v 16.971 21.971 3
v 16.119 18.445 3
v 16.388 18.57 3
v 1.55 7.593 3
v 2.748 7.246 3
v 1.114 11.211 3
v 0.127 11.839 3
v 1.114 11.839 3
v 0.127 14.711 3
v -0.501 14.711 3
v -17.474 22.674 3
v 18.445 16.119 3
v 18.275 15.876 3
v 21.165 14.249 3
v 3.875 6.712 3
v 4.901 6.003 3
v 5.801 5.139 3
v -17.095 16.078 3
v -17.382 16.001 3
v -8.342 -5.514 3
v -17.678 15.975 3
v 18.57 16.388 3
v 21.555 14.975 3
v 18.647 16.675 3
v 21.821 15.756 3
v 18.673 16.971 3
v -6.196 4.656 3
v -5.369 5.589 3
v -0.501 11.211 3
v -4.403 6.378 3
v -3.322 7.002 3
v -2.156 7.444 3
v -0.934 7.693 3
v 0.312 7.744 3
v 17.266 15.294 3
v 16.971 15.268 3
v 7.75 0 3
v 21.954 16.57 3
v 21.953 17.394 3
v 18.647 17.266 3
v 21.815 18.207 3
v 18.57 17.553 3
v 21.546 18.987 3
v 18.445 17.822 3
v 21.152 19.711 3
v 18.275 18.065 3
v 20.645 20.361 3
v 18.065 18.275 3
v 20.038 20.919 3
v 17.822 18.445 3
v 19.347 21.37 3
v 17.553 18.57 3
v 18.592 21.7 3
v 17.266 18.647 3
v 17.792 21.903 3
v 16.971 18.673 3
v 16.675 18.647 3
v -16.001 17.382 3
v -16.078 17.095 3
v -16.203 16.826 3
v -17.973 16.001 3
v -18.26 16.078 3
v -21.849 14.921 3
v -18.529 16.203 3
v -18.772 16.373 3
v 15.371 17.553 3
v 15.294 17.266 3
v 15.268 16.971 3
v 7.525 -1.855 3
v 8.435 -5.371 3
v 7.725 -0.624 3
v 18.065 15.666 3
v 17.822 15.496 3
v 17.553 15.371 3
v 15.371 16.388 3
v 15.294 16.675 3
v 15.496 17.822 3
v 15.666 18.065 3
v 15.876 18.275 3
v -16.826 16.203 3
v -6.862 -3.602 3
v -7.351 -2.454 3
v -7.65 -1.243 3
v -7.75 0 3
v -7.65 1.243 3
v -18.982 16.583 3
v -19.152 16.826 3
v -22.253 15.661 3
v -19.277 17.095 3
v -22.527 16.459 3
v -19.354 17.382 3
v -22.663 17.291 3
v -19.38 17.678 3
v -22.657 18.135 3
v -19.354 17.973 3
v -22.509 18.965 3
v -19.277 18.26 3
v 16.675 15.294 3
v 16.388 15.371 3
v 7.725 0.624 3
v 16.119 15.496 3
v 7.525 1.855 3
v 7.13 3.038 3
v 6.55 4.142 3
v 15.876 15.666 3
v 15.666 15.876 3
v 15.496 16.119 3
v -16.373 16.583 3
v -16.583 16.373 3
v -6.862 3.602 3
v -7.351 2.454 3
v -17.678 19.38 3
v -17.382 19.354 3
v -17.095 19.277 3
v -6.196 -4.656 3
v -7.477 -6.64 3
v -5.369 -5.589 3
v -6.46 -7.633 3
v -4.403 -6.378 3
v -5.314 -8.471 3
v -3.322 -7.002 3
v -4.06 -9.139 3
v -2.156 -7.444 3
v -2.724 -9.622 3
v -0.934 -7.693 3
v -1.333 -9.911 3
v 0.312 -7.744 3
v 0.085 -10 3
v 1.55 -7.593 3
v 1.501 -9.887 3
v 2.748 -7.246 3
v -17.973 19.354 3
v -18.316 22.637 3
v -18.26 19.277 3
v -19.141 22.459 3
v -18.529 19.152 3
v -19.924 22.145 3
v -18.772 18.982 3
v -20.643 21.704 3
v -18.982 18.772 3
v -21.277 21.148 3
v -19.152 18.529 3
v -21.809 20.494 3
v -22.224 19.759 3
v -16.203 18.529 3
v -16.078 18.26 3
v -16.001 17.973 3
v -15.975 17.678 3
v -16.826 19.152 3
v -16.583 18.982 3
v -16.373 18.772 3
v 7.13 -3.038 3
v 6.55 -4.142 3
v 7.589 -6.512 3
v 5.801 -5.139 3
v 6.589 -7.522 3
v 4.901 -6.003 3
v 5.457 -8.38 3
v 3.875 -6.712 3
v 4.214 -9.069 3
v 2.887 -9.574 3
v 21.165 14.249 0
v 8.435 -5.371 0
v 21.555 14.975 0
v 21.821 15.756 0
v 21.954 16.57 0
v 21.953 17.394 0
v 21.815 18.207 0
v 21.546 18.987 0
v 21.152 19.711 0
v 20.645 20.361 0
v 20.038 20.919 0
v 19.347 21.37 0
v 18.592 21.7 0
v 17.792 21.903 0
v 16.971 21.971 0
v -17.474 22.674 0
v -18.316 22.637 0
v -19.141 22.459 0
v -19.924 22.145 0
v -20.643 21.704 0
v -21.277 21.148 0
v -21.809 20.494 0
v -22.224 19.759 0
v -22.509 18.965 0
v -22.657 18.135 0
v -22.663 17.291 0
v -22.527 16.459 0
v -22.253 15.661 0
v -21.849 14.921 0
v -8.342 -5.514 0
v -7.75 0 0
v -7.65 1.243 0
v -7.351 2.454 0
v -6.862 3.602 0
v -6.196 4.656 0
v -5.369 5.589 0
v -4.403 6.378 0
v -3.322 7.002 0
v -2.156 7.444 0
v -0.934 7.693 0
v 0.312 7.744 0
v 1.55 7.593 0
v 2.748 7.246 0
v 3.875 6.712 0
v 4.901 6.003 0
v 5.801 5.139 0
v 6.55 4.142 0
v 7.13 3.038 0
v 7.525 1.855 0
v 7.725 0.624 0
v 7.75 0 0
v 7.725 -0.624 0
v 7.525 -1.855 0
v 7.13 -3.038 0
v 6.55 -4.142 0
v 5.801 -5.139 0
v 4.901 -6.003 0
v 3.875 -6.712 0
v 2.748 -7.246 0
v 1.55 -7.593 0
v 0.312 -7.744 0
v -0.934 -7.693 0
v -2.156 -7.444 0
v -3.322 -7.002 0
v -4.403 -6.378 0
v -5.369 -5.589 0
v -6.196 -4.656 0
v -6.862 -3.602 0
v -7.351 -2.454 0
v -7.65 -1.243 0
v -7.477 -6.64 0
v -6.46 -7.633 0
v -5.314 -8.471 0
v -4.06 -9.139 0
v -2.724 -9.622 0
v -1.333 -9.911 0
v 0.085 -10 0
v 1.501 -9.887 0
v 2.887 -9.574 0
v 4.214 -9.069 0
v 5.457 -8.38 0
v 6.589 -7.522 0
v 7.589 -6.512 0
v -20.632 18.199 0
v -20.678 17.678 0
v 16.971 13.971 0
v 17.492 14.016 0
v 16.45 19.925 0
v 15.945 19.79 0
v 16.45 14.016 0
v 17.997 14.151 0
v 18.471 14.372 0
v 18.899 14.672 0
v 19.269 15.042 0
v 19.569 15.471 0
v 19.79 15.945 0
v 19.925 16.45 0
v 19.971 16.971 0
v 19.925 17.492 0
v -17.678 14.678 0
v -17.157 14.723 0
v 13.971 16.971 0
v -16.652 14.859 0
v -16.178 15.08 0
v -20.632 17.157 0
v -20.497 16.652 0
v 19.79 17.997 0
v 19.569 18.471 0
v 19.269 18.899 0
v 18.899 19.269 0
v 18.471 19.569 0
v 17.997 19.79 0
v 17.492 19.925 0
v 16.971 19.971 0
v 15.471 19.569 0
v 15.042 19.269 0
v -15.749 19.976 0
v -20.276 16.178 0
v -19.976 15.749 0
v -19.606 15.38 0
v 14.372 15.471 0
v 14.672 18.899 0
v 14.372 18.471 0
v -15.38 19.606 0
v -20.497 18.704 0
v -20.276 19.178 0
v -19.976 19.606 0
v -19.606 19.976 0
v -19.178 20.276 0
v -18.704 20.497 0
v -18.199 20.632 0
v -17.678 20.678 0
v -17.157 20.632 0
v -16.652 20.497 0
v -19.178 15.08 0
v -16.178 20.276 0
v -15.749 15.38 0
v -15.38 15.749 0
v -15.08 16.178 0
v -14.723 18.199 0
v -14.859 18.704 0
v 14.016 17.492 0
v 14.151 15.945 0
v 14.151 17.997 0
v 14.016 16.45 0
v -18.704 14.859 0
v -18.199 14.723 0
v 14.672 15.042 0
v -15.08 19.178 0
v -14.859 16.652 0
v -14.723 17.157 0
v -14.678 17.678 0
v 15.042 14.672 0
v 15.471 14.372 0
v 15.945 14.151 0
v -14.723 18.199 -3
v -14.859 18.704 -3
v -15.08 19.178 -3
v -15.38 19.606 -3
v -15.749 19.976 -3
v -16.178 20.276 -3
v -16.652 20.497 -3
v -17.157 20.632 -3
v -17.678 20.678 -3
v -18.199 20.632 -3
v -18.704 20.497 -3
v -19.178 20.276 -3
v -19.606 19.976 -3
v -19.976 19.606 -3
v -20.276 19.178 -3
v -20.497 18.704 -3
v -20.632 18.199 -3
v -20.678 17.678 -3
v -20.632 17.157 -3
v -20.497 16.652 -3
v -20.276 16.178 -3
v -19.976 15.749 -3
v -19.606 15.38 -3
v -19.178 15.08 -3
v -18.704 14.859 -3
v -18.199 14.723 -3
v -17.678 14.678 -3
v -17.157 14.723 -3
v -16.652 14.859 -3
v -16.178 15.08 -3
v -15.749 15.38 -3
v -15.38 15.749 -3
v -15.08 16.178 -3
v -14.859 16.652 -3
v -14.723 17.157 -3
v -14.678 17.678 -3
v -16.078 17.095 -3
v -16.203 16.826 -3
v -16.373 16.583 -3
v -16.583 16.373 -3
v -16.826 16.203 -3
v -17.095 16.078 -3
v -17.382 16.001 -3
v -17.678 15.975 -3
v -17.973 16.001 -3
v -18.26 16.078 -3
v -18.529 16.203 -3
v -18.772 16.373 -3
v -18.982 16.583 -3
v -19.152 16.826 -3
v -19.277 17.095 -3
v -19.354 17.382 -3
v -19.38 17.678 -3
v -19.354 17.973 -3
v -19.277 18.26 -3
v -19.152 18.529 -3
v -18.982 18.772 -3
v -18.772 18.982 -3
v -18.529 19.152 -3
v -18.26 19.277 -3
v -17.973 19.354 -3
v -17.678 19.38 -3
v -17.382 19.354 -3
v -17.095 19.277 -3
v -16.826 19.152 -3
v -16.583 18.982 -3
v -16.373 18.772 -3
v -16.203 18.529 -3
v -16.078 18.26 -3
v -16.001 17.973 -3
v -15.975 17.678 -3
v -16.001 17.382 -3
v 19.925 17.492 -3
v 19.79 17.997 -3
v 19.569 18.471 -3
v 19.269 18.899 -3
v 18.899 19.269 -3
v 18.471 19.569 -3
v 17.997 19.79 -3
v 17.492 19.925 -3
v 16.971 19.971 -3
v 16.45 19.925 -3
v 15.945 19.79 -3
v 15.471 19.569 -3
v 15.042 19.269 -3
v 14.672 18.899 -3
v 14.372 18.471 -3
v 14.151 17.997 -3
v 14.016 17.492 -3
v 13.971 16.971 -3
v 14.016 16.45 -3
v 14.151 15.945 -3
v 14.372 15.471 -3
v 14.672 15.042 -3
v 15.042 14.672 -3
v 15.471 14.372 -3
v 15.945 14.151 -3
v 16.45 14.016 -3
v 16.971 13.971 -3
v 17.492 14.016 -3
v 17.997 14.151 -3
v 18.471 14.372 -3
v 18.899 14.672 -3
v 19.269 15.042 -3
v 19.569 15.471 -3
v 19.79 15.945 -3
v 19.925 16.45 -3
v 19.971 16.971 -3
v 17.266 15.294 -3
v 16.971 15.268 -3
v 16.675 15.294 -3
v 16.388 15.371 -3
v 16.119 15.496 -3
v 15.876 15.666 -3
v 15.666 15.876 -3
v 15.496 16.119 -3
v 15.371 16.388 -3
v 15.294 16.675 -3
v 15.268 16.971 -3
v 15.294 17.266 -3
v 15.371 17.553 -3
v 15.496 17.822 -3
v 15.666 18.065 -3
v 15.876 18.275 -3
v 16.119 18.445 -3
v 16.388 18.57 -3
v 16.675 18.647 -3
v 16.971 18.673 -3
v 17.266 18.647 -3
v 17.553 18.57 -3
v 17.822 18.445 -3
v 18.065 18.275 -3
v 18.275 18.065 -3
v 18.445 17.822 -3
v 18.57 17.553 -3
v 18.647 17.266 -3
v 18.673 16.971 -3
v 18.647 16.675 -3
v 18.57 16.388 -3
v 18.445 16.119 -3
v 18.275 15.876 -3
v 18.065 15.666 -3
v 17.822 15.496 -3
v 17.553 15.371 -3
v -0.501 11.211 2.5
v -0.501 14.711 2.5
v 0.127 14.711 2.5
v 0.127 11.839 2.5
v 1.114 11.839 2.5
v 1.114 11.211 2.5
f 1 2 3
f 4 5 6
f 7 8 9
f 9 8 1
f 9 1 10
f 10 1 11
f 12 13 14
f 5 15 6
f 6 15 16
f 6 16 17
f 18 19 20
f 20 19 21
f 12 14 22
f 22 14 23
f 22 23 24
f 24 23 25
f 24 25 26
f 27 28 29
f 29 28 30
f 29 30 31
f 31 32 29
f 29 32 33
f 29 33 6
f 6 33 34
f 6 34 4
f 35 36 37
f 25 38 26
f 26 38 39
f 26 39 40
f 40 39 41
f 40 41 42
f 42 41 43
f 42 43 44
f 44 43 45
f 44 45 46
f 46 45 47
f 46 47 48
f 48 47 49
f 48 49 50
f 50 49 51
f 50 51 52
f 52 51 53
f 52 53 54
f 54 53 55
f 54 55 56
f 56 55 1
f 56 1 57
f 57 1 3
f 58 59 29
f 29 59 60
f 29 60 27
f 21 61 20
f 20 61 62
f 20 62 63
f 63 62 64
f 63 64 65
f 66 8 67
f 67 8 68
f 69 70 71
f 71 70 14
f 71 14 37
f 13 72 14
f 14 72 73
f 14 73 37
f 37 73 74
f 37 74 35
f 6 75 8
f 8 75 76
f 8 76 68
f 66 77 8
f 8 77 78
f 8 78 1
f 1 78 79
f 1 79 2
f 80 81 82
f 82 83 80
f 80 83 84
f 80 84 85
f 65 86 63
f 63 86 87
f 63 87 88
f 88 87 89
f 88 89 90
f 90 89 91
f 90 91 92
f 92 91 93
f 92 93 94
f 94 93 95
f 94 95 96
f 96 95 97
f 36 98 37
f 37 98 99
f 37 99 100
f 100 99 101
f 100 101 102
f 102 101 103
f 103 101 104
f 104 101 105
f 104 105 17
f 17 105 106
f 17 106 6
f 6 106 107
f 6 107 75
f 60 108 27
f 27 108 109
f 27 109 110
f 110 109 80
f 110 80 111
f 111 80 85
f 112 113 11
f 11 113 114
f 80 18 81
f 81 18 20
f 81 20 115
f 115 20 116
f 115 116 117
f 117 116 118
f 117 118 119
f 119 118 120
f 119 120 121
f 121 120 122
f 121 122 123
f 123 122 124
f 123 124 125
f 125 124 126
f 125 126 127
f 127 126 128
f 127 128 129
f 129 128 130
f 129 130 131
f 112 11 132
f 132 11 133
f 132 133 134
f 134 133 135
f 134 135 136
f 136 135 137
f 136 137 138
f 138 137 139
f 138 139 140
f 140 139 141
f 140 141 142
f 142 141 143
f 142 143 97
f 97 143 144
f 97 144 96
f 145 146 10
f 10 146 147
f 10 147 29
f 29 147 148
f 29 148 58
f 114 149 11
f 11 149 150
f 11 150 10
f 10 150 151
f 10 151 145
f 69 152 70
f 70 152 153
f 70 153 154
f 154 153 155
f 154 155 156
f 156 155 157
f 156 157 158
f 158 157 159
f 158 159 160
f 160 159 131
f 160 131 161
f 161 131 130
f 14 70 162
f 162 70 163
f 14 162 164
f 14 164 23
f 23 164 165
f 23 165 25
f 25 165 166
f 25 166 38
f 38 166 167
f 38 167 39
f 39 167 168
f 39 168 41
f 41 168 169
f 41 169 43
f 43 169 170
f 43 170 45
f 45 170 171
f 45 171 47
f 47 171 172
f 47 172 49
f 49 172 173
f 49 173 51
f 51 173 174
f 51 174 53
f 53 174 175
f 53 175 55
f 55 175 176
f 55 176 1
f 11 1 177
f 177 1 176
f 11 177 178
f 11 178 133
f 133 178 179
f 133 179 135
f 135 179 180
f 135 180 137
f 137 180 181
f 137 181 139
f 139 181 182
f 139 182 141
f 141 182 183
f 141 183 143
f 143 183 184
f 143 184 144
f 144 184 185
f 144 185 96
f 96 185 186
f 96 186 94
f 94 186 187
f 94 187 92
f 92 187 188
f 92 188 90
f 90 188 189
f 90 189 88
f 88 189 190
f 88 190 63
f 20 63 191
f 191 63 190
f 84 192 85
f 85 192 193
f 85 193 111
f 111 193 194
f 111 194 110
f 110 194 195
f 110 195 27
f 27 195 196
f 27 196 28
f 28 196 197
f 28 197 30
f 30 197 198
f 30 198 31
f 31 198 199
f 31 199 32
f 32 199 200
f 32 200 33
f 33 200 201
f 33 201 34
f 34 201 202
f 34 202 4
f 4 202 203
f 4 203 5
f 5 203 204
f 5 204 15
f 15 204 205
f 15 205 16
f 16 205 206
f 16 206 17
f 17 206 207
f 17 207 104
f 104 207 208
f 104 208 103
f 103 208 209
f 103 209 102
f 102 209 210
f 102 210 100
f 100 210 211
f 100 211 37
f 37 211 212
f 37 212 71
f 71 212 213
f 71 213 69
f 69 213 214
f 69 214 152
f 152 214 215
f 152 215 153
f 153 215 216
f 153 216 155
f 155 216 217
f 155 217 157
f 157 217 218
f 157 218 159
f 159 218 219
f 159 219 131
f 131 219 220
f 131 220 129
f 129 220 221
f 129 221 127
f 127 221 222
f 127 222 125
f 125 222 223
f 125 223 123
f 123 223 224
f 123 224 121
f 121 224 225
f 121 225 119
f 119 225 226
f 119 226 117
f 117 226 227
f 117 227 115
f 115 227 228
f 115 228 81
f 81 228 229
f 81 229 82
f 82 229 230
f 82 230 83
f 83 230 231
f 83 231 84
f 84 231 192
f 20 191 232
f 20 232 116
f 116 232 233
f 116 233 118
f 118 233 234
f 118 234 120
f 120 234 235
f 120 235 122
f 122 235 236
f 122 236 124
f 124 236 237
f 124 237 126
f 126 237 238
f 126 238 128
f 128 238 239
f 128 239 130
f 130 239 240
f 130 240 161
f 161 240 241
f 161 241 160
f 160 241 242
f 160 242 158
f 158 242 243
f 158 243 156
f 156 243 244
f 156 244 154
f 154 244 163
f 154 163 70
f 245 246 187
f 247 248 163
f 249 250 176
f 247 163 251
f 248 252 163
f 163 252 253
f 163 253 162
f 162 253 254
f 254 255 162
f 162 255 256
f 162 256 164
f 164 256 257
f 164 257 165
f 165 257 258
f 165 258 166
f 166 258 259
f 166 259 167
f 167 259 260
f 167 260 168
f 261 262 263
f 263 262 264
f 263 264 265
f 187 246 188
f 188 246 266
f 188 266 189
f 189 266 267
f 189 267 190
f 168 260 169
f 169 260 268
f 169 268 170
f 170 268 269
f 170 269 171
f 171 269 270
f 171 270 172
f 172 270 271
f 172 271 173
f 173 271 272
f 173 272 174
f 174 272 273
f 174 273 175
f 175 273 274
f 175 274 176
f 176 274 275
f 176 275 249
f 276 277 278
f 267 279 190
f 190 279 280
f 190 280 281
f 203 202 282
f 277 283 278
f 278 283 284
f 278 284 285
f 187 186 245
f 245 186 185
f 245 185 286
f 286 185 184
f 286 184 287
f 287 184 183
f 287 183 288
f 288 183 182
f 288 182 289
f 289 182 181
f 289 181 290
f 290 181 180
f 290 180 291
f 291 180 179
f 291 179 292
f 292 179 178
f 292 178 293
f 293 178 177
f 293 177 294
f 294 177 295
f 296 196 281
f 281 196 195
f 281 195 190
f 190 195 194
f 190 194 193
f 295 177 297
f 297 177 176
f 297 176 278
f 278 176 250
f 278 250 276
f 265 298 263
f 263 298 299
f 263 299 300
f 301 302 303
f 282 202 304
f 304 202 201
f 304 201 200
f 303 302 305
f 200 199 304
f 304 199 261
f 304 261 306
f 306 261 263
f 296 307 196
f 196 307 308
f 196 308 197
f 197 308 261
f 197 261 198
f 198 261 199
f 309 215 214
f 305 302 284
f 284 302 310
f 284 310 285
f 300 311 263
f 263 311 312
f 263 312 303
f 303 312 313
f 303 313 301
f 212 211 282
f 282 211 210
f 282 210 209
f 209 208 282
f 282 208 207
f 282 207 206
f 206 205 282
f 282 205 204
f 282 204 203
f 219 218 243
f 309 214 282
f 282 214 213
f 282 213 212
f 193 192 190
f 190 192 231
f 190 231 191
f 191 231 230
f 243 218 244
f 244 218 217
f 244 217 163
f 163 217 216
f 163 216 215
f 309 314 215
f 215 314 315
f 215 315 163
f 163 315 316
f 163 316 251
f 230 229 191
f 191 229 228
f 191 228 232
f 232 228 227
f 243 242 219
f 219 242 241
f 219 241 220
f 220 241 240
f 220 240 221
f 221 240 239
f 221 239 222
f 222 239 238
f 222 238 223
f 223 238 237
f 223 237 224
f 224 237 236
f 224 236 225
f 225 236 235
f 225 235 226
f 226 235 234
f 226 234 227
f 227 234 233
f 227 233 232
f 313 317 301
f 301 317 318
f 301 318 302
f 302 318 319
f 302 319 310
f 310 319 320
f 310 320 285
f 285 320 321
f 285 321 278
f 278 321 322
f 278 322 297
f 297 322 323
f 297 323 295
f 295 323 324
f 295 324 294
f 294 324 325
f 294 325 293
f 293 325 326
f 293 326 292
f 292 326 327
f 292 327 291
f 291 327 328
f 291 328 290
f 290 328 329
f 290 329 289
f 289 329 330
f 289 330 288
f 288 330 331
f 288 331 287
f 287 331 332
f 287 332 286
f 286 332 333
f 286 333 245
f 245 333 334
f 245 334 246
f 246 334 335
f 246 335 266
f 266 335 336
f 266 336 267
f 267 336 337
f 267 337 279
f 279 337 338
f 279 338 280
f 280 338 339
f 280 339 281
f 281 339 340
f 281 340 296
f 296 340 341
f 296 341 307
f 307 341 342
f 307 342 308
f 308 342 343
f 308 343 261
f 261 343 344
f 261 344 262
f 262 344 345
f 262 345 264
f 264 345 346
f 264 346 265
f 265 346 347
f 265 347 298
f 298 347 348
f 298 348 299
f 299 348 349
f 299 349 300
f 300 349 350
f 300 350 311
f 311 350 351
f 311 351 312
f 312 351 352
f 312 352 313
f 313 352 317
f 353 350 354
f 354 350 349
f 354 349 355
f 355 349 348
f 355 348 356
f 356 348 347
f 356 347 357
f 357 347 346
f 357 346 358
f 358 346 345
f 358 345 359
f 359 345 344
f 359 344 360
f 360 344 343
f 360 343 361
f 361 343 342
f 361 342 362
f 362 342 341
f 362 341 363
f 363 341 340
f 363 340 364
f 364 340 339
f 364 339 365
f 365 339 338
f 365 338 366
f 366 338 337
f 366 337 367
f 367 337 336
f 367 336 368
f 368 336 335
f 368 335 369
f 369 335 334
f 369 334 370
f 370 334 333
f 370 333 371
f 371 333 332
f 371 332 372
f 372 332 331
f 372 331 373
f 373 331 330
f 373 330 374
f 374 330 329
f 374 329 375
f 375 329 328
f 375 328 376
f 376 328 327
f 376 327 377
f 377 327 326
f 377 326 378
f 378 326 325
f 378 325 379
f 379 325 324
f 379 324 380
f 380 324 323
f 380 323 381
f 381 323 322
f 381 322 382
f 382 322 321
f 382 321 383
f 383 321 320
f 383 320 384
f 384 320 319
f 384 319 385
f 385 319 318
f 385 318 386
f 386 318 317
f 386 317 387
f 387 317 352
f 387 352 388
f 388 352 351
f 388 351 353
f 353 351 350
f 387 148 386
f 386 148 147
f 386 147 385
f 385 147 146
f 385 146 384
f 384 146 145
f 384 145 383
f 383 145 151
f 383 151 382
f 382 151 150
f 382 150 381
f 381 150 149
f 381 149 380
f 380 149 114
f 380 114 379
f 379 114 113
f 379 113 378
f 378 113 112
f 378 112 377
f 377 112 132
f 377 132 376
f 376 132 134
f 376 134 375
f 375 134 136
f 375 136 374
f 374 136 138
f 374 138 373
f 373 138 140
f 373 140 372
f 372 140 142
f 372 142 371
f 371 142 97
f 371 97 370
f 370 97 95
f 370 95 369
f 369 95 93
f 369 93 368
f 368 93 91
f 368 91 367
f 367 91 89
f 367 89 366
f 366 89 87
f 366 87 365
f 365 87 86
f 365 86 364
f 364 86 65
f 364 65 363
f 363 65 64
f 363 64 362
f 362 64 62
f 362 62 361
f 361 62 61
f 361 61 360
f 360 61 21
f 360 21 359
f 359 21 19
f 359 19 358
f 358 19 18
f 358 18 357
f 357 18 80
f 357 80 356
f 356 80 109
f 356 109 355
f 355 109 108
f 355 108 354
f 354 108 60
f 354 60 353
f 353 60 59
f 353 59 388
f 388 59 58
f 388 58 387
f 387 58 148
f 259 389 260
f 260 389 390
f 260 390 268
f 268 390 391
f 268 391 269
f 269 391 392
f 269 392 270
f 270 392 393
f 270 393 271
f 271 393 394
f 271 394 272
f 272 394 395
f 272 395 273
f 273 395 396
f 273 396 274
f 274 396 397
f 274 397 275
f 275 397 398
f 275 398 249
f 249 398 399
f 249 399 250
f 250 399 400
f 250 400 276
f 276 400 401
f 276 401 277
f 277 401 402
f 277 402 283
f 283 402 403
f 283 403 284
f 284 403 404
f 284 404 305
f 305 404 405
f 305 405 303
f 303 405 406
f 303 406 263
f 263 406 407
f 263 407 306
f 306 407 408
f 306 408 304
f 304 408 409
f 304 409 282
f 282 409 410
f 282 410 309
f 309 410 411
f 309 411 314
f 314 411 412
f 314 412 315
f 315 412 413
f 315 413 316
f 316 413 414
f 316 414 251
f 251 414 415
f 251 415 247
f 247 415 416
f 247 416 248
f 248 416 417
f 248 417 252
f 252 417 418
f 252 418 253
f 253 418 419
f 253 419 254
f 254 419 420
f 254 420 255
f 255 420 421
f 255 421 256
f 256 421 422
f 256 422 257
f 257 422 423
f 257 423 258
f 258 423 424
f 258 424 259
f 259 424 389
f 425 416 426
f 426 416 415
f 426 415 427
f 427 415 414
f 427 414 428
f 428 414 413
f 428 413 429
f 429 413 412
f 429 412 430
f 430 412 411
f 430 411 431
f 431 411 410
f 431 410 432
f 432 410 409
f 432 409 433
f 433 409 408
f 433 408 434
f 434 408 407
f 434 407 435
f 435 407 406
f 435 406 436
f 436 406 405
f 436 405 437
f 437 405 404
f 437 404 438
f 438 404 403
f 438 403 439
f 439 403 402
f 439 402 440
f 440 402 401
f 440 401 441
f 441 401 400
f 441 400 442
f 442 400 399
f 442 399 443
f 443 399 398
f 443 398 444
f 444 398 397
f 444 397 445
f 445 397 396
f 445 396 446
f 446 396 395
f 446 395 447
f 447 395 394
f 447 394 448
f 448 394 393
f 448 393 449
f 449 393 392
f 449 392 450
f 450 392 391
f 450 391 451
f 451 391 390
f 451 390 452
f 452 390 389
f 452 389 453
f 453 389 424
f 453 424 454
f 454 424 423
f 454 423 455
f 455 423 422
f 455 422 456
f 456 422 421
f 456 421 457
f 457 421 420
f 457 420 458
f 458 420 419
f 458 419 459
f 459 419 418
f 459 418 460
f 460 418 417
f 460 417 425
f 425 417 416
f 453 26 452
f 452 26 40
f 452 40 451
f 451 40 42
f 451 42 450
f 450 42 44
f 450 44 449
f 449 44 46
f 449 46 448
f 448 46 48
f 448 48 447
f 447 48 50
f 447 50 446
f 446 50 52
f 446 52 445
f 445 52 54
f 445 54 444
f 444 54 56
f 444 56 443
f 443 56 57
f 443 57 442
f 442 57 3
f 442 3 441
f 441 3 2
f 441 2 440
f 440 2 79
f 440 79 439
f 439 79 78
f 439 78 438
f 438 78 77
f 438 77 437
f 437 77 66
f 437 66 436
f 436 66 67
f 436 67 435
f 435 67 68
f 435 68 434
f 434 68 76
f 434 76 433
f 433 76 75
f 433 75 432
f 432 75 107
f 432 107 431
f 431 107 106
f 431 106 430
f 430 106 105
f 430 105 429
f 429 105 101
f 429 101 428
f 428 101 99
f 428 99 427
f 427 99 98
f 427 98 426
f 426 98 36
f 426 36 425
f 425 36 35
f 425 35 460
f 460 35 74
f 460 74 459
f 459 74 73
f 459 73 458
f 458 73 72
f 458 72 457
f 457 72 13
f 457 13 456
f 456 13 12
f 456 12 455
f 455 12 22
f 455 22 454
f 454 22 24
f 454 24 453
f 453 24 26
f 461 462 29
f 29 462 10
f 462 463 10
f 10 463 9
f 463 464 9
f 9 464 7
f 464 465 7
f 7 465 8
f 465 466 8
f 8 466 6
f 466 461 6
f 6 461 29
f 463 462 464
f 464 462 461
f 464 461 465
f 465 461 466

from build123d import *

# Parameters (mm, degrees)
SKETCH1_R           = 7.75
SKETCH1_R_2         = 3
BOSS_EXTRUDE3_DEPTH = 3
BOSS_EXTRUDE4_START = -6
SKETCH3_R           = 3
SKETCH3_R_2         = 1.7025
BOSS_EXTRUDE4_DEPTH = 6
CUT_EXTRUDE1_DEPTH  = 0.5


with BuildPart() as part:
    # Sketch1 → Boss-Extrude3 (new body)
    with BuildSketch(Plane.XY):
        with BuildLine():
            Line((8.434915556, -5.371424351), (21.165047264, 14.249110995))
            ThreePointArc((21.165047264, 14.249110995), (21.364152327, 19.357269814), (16.970562748, 21.970562748))
            Line((16.970562748, 21.970562748), (-17.47367286, 22.673506332))
            ThreePointArc((-17.47367286, 22.673506332), (-22.032126076, 20.135047844), (-21.848877926, 14.920674696))
            Line((-21.848877926, 14.920674696), (-8.342416793, -5.513989668))
            ThreePointArc((-8.342416793, -5.513989668), (0.084971894, -9.999638982), (8.434915556, -5.371424351))
        make_face()
        Circle(SKETCH1_R, mode=Mode.SUBTRACT)
        with Locations((-17.67766953, 17.67766953)):
            Circle(SKETCH1_R_2, mode=Mode.SUBTRACT)
        with Locations((16.970562748, 16.970562748)):
            Circle(SKETCH1_R_2, mode=Mode.SUBTRACT)
    extrude(amount=BOSS_EXTRUDE3_DEPTH)

    # Sketch3 → Boss-Extrude4 (add)
    # profile 1 of 2: a face of its own
    with BuildSketch(Plane.XY.offset(3).offset(BOSS_EXTRUDE4_START)):
        with Locations((-17.67766953, 17.67766953)):
            Circle(SKETCH3_R)
        with Locations((-17.67766953, 17.67766953)):
            Circle(SKETCH3_R_2, mode=Mode.SUBTRACT)
    # profile 2 of 2: a face of its own
    with BuildSketch(Plane.XY.offset(3).offset(BOSS_EXTRUDE4_START)):
        with Locations((16.970562748, 16.970562748)):
            Circle(SKETCH3_R)
        with Locations((16.970562748, 16.970562748)):
            Circle(SKETCH3_R_2, mode=Mode.SUBTRACT)
    extrude(amount=BOSS_EXTRUDE4_DEPTH)

    # Sketch4 → Cut-Extrude1 (cut)
    with BuildSketch(Plane.XY.offset(3)):
        Polygon((-0.501047916, 14.710849075), (0.127157212, 14.710849075), (0.127157212, 11.839054203), (1.1143367, 11.839054203), (1.1143367, 11.210849075), (-0.501047916, 11.210849075), align=None)
    extrude(amount=-CUT_EXTRUDE1_DEPTH, mode=Mode.SUBTRACT)


solid = part.part
